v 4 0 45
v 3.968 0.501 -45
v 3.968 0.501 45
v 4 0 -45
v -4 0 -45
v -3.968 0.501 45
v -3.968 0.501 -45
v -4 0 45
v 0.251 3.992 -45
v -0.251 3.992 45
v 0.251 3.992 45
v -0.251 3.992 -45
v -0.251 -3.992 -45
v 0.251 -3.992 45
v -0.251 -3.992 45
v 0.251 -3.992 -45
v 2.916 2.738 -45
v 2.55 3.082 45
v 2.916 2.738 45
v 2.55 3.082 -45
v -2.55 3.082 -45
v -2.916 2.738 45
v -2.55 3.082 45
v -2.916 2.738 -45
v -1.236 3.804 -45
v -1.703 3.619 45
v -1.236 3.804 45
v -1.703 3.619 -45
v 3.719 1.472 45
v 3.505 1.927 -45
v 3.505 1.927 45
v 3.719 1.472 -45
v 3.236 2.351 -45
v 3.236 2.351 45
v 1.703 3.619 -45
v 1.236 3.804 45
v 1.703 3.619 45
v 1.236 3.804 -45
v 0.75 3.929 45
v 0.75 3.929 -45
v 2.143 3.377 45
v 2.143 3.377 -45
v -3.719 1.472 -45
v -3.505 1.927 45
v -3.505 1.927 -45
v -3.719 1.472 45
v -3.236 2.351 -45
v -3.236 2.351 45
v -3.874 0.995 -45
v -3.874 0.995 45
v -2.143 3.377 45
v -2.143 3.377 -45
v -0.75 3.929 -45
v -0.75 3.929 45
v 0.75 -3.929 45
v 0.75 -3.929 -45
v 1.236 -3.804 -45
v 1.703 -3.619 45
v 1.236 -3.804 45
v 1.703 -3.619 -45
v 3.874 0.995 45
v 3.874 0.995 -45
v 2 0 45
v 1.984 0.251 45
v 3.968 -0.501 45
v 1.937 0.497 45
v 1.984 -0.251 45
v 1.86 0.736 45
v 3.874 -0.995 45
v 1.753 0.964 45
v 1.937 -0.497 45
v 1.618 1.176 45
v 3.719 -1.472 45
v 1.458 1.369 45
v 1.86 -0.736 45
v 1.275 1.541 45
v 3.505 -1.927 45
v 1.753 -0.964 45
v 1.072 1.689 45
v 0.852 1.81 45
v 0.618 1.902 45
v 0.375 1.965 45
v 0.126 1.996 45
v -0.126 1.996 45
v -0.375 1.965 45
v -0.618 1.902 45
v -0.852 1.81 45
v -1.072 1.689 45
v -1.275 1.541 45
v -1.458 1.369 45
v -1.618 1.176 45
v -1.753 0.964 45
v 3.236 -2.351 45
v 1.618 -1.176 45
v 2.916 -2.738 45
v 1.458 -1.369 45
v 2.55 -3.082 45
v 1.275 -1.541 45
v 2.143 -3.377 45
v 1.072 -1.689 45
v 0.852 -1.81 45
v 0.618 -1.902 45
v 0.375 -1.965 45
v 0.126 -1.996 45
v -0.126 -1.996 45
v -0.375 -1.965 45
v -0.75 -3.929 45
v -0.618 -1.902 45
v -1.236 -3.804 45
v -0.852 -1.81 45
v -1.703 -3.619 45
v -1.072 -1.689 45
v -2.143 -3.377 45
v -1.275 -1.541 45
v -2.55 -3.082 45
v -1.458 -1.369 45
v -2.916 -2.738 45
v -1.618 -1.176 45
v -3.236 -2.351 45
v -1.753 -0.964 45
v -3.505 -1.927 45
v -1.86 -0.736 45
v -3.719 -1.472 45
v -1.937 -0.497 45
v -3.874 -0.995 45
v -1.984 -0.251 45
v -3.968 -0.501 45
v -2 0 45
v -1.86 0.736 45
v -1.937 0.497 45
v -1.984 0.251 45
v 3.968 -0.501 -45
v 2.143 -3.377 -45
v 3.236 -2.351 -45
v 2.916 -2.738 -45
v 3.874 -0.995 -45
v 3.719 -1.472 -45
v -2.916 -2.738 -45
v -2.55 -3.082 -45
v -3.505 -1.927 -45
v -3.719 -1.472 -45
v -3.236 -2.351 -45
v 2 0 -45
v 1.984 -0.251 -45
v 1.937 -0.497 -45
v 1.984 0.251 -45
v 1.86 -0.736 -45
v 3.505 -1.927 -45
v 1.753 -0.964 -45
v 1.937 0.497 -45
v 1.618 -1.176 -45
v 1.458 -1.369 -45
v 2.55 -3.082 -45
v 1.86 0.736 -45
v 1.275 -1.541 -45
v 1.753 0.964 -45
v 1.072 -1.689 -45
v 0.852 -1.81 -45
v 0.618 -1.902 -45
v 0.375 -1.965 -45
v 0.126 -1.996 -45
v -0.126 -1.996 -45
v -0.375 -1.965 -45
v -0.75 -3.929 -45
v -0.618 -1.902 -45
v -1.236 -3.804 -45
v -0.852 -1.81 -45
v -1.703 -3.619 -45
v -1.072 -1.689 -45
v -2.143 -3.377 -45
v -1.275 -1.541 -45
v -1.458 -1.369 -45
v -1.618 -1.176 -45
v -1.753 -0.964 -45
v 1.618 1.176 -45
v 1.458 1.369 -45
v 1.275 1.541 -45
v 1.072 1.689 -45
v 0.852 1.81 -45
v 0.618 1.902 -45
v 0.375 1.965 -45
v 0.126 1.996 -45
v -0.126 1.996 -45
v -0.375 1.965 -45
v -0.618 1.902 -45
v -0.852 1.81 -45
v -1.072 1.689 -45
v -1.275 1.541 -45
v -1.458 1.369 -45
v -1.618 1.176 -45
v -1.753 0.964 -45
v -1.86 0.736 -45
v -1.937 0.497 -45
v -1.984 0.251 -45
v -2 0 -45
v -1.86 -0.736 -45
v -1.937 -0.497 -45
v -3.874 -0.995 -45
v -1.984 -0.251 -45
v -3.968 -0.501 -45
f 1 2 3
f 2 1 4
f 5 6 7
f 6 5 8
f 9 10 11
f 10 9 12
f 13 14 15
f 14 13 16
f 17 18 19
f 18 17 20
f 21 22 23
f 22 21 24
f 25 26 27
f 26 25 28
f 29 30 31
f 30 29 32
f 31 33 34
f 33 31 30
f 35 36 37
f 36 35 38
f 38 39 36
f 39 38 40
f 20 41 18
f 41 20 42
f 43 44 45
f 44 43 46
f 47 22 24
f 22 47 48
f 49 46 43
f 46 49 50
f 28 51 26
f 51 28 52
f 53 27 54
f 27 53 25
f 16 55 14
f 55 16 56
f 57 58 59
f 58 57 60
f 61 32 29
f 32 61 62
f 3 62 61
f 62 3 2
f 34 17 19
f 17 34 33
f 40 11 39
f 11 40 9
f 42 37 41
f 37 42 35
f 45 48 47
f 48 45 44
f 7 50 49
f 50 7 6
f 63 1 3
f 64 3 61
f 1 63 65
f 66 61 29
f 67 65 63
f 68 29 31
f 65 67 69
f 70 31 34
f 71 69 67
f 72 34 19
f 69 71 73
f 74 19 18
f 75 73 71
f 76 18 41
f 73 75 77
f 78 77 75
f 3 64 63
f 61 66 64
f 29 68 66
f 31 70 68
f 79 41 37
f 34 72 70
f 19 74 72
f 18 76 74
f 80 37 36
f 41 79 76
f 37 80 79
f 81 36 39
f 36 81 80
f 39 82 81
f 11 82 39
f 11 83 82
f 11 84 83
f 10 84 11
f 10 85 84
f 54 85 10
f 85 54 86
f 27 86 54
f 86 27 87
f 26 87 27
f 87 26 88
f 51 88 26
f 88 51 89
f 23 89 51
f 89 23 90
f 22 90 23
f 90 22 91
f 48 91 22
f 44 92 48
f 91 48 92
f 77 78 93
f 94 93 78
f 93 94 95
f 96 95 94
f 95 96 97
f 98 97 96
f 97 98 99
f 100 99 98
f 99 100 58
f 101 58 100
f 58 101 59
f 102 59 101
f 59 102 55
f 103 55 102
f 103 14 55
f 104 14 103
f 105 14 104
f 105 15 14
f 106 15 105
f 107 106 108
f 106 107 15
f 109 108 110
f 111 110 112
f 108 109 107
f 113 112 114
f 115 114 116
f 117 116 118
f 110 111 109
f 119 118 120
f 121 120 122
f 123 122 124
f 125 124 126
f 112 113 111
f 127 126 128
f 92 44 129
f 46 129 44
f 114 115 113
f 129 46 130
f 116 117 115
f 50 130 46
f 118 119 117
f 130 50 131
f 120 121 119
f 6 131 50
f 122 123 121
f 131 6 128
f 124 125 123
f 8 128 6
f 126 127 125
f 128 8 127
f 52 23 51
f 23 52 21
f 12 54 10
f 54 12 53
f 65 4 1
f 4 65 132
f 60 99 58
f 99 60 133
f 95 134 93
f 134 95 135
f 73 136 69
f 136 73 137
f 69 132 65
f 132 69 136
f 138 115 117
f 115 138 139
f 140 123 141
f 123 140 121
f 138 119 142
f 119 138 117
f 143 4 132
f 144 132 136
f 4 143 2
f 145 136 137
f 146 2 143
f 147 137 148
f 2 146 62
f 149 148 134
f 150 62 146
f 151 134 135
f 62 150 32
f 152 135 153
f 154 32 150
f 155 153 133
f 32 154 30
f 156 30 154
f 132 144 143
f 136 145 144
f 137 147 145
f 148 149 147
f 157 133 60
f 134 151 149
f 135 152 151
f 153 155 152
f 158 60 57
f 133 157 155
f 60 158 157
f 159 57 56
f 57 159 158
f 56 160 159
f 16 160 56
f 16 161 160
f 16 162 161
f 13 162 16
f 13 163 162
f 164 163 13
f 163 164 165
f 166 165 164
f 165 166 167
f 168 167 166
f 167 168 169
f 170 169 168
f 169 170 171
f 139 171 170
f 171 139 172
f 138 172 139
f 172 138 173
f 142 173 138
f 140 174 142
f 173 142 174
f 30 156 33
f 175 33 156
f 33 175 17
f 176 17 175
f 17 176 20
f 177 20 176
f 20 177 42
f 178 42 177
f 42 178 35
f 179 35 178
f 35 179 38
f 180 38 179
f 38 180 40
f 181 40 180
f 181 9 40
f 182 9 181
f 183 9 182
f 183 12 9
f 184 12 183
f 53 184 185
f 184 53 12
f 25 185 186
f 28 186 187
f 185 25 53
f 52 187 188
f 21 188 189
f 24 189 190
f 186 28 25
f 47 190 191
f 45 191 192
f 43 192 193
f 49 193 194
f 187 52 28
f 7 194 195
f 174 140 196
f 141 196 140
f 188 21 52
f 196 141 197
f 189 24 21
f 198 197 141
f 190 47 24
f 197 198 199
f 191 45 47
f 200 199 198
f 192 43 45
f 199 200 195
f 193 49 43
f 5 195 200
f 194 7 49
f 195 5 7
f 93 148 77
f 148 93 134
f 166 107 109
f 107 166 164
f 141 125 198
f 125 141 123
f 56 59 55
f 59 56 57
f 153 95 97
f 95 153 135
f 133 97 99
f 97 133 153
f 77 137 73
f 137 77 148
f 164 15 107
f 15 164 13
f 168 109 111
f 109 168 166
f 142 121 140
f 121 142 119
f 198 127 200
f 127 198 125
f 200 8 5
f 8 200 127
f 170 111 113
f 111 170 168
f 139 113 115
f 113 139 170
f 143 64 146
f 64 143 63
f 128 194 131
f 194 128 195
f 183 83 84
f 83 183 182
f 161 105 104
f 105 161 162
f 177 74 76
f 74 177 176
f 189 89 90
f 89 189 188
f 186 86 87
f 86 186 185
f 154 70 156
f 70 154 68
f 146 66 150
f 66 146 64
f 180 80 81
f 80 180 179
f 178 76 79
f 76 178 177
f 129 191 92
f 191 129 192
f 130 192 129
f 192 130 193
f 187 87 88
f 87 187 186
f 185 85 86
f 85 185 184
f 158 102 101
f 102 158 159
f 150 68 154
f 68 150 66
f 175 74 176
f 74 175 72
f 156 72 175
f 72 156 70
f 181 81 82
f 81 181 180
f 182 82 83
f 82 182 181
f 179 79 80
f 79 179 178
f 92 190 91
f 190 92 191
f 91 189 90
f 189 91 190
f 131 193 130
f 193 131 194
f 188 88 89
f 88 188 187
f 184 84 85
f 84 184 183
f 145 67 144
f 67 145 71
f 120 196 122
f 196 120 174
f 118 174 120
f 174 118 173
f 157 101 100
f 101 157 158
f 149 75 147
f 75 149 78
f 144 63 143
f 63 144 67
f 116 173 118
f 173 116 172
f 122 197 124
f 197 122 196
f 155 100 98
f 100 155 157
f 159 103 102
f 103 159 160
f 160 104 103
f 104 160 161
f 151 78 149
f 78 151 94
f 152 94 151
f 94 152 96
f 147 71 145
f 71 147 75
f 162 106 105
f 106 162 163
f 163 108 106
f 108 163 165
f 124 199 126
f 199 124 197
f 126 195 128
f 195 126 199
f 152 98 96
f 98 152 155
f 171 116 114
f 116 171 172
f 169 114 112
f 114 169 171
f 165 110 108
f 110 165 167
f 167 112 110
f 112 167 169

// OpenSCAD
$fn = 50;


difference() {
	union() {
		translate(v = [0, 0, -45.0000000000]) {
			cylinder(h = 90, r = 4.0000000000);
		}
	}
	union() {
		translate(v = [0, 0, -100.0000000000]) {
			cylinder(h = 200, r = 2);
		}
	}
}
